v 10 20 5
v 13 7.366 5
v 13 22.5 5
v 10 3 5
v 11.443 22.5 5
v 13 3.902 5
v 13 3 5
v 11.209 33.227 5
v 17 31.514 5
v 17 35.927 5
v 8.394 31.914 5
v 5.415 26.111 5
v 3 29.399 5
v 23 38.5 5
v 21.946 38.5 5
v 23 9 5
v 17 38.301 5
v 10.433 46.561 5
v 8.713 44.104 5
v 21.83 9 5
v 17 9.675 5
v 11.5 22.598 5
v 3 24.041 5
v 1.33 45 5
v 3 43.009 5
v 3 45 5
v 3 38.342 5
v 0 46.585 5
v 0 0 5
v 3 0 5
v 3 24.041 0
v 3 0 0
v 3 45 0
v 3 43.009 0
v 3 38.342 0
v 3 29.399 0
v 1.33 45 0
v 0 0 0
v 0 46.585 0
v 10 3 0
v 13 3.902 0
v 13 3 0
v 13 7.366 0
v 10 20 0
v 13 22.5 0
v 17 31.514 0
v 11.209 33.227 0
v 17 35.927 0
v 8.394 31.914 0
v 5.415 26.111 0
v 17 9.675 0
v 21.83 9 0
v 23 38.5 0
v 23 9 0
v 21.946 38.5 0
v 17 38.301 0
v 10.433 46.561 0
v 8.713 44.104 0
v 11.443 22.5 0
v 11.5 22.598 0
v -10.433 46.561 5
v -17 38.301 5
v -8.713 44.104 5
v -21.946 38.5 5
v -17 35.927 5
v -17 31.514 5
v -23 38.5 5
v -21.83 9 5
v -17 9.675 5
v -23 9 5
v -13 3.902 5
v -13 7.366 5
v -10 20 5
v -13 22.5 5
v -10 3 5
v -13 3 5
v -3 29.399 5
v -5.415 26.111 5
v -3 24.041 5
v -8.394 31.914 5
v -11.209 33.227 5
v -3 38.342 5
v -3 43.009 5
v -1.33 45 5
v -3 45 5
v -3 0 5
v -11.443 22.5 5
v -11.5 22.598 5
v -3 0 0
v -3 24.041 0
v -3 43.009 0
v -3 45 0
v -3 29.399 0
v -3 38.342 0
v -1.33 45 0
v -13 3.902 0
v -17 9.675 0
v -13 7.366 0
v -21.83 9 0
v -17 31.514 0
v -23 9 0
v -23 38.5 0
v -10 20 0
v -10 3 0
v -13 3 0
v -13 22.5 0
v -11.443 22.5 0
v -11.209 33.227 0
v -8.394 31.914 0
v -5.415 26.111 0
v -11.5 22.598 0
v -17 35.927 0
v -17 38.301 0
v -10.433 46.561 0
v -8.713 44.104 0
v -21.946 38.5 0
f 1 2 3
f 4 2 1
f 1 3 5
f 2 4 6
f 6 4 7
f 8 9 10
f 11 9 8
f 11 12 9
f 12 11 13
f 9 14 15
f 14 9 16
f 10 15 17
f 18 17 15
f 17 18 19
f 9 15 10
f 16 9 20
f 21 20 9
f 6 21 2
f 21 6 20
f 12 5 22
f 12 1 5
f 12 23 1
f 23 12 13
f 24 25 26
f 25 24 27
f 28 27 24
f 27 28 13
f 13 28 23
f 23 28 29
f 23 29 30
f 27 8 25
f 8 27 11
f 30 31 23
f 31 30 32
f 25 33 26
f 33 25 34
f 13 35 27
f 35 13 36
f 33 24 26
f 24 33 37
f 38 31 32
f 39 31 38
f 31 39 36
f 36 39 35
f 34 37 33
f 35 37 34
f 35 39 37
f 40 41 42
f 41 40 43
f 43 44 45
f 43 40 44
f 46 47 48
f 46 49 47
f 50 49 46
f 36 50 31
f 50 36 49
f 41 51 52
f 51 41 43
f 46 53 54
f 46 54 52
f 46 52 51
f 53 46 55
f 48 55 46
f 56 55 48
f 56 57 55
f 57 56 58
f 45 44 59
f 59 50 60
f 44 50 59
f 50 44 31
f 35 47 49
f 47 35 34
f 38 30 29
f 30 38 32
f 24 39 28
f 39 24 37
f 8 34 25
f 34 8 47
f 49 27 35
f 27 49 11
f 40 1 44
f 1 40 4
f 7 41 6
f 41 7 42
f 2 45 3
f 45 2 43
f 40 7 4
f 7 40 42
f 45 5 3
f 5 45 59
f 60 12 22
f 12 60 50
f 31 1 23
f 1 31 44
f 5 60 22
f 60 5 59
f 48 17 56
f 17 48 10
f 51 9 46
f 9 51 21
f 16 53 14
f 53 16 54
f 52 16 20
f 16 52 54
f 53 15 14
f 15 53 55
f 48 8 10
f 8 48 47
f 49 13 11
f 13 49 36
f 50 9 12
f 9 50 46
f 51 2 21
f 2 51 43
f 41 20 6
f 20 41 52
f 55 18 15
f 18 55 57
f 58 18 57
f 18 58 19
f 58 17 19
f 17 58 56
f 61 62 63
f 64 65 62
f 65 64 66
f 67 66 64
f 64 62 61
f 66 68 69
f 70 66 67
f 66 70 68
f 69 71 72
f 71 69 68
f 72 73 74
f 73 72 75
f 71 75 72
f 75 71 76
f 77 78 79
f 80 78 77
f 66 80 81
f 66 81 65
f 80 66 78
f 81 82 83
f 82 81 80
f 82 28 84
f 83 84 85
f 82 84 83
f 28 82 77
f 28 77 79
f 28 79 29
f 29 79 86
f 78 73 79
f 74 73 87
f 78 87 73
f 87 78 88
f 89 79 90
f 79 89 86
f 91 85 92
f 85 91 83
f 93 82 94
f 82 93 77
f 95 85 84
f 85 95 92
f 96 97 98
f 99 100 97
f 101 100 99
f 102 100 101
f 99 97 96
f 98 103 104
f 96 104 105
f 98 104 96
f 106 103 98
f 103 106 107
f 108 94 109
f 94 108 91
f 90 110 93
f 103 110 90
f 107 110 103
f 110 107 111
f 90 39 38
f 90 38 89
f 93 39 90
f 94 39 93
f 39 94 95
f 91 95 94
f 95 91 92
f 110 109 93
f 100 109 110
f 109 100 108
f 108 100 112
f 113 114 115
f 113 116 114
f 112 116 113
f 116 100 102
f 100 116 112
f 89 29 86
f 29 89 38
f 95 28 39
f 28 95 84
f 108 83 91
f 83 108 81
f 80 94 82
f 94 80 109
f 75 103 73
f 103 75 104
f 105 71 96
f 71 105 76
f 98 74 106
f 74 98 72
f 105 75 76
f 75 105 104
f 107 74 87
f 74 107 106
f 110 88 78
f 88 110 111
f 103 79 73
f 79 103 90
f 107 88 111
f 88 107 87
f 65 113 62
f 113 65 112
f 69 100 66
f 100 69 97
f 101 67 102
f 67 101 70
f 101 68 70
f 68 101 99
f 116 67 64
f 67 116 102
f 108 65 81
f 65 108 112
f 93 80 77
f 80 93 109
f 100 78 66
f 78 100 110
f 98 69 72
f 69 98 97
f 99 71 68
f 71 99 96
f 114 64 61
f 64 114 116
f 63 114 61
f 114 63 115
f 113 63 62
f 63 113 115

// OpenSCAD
module arrow() {
    union() {
        cube([3,45,5]);
        translate([10,30,0]) rotate(40) cube([3,20,5]);
    }
}

module turn_line() {
    union() {
        translate([10,3,0])cube([3,19.5,5]);
        translate([10,20,0]) rotate(60) cube([3,10,5]);
    }
}

module black_lines() {
    union() {
        translate([17,9,0]) cube([6,29.5,5]);
        translate([0,28,0]) rotate(-65) cube([4,19,5]);
        translate([11.5,6.5,0]) rotate(-60) cube([3,11.5,5]);
        translate([21,35.5,0]) rotate(55) cube([3,15,5]);
    }
}

module half_shape() {
    difference() {
        union() {
            arrow();
            turn_line();
            black_lines();
        };
        translate([-5,-10,0]) cube([5,100,10]);
    }
}

module half_shape_mirror() {
    difference() {
        mirror([0,0,0])
        union() {
            arrow();
            turn_line();
            black_lines();
        };
        mirror([0,0,0]) translate([-5,-10,0]) cube([5,100,10]);
    }
}

half_shape();

mirror([10,0,0]) half_shape();


//translate([0,25,0]) cube([60,60,4], center=true);
